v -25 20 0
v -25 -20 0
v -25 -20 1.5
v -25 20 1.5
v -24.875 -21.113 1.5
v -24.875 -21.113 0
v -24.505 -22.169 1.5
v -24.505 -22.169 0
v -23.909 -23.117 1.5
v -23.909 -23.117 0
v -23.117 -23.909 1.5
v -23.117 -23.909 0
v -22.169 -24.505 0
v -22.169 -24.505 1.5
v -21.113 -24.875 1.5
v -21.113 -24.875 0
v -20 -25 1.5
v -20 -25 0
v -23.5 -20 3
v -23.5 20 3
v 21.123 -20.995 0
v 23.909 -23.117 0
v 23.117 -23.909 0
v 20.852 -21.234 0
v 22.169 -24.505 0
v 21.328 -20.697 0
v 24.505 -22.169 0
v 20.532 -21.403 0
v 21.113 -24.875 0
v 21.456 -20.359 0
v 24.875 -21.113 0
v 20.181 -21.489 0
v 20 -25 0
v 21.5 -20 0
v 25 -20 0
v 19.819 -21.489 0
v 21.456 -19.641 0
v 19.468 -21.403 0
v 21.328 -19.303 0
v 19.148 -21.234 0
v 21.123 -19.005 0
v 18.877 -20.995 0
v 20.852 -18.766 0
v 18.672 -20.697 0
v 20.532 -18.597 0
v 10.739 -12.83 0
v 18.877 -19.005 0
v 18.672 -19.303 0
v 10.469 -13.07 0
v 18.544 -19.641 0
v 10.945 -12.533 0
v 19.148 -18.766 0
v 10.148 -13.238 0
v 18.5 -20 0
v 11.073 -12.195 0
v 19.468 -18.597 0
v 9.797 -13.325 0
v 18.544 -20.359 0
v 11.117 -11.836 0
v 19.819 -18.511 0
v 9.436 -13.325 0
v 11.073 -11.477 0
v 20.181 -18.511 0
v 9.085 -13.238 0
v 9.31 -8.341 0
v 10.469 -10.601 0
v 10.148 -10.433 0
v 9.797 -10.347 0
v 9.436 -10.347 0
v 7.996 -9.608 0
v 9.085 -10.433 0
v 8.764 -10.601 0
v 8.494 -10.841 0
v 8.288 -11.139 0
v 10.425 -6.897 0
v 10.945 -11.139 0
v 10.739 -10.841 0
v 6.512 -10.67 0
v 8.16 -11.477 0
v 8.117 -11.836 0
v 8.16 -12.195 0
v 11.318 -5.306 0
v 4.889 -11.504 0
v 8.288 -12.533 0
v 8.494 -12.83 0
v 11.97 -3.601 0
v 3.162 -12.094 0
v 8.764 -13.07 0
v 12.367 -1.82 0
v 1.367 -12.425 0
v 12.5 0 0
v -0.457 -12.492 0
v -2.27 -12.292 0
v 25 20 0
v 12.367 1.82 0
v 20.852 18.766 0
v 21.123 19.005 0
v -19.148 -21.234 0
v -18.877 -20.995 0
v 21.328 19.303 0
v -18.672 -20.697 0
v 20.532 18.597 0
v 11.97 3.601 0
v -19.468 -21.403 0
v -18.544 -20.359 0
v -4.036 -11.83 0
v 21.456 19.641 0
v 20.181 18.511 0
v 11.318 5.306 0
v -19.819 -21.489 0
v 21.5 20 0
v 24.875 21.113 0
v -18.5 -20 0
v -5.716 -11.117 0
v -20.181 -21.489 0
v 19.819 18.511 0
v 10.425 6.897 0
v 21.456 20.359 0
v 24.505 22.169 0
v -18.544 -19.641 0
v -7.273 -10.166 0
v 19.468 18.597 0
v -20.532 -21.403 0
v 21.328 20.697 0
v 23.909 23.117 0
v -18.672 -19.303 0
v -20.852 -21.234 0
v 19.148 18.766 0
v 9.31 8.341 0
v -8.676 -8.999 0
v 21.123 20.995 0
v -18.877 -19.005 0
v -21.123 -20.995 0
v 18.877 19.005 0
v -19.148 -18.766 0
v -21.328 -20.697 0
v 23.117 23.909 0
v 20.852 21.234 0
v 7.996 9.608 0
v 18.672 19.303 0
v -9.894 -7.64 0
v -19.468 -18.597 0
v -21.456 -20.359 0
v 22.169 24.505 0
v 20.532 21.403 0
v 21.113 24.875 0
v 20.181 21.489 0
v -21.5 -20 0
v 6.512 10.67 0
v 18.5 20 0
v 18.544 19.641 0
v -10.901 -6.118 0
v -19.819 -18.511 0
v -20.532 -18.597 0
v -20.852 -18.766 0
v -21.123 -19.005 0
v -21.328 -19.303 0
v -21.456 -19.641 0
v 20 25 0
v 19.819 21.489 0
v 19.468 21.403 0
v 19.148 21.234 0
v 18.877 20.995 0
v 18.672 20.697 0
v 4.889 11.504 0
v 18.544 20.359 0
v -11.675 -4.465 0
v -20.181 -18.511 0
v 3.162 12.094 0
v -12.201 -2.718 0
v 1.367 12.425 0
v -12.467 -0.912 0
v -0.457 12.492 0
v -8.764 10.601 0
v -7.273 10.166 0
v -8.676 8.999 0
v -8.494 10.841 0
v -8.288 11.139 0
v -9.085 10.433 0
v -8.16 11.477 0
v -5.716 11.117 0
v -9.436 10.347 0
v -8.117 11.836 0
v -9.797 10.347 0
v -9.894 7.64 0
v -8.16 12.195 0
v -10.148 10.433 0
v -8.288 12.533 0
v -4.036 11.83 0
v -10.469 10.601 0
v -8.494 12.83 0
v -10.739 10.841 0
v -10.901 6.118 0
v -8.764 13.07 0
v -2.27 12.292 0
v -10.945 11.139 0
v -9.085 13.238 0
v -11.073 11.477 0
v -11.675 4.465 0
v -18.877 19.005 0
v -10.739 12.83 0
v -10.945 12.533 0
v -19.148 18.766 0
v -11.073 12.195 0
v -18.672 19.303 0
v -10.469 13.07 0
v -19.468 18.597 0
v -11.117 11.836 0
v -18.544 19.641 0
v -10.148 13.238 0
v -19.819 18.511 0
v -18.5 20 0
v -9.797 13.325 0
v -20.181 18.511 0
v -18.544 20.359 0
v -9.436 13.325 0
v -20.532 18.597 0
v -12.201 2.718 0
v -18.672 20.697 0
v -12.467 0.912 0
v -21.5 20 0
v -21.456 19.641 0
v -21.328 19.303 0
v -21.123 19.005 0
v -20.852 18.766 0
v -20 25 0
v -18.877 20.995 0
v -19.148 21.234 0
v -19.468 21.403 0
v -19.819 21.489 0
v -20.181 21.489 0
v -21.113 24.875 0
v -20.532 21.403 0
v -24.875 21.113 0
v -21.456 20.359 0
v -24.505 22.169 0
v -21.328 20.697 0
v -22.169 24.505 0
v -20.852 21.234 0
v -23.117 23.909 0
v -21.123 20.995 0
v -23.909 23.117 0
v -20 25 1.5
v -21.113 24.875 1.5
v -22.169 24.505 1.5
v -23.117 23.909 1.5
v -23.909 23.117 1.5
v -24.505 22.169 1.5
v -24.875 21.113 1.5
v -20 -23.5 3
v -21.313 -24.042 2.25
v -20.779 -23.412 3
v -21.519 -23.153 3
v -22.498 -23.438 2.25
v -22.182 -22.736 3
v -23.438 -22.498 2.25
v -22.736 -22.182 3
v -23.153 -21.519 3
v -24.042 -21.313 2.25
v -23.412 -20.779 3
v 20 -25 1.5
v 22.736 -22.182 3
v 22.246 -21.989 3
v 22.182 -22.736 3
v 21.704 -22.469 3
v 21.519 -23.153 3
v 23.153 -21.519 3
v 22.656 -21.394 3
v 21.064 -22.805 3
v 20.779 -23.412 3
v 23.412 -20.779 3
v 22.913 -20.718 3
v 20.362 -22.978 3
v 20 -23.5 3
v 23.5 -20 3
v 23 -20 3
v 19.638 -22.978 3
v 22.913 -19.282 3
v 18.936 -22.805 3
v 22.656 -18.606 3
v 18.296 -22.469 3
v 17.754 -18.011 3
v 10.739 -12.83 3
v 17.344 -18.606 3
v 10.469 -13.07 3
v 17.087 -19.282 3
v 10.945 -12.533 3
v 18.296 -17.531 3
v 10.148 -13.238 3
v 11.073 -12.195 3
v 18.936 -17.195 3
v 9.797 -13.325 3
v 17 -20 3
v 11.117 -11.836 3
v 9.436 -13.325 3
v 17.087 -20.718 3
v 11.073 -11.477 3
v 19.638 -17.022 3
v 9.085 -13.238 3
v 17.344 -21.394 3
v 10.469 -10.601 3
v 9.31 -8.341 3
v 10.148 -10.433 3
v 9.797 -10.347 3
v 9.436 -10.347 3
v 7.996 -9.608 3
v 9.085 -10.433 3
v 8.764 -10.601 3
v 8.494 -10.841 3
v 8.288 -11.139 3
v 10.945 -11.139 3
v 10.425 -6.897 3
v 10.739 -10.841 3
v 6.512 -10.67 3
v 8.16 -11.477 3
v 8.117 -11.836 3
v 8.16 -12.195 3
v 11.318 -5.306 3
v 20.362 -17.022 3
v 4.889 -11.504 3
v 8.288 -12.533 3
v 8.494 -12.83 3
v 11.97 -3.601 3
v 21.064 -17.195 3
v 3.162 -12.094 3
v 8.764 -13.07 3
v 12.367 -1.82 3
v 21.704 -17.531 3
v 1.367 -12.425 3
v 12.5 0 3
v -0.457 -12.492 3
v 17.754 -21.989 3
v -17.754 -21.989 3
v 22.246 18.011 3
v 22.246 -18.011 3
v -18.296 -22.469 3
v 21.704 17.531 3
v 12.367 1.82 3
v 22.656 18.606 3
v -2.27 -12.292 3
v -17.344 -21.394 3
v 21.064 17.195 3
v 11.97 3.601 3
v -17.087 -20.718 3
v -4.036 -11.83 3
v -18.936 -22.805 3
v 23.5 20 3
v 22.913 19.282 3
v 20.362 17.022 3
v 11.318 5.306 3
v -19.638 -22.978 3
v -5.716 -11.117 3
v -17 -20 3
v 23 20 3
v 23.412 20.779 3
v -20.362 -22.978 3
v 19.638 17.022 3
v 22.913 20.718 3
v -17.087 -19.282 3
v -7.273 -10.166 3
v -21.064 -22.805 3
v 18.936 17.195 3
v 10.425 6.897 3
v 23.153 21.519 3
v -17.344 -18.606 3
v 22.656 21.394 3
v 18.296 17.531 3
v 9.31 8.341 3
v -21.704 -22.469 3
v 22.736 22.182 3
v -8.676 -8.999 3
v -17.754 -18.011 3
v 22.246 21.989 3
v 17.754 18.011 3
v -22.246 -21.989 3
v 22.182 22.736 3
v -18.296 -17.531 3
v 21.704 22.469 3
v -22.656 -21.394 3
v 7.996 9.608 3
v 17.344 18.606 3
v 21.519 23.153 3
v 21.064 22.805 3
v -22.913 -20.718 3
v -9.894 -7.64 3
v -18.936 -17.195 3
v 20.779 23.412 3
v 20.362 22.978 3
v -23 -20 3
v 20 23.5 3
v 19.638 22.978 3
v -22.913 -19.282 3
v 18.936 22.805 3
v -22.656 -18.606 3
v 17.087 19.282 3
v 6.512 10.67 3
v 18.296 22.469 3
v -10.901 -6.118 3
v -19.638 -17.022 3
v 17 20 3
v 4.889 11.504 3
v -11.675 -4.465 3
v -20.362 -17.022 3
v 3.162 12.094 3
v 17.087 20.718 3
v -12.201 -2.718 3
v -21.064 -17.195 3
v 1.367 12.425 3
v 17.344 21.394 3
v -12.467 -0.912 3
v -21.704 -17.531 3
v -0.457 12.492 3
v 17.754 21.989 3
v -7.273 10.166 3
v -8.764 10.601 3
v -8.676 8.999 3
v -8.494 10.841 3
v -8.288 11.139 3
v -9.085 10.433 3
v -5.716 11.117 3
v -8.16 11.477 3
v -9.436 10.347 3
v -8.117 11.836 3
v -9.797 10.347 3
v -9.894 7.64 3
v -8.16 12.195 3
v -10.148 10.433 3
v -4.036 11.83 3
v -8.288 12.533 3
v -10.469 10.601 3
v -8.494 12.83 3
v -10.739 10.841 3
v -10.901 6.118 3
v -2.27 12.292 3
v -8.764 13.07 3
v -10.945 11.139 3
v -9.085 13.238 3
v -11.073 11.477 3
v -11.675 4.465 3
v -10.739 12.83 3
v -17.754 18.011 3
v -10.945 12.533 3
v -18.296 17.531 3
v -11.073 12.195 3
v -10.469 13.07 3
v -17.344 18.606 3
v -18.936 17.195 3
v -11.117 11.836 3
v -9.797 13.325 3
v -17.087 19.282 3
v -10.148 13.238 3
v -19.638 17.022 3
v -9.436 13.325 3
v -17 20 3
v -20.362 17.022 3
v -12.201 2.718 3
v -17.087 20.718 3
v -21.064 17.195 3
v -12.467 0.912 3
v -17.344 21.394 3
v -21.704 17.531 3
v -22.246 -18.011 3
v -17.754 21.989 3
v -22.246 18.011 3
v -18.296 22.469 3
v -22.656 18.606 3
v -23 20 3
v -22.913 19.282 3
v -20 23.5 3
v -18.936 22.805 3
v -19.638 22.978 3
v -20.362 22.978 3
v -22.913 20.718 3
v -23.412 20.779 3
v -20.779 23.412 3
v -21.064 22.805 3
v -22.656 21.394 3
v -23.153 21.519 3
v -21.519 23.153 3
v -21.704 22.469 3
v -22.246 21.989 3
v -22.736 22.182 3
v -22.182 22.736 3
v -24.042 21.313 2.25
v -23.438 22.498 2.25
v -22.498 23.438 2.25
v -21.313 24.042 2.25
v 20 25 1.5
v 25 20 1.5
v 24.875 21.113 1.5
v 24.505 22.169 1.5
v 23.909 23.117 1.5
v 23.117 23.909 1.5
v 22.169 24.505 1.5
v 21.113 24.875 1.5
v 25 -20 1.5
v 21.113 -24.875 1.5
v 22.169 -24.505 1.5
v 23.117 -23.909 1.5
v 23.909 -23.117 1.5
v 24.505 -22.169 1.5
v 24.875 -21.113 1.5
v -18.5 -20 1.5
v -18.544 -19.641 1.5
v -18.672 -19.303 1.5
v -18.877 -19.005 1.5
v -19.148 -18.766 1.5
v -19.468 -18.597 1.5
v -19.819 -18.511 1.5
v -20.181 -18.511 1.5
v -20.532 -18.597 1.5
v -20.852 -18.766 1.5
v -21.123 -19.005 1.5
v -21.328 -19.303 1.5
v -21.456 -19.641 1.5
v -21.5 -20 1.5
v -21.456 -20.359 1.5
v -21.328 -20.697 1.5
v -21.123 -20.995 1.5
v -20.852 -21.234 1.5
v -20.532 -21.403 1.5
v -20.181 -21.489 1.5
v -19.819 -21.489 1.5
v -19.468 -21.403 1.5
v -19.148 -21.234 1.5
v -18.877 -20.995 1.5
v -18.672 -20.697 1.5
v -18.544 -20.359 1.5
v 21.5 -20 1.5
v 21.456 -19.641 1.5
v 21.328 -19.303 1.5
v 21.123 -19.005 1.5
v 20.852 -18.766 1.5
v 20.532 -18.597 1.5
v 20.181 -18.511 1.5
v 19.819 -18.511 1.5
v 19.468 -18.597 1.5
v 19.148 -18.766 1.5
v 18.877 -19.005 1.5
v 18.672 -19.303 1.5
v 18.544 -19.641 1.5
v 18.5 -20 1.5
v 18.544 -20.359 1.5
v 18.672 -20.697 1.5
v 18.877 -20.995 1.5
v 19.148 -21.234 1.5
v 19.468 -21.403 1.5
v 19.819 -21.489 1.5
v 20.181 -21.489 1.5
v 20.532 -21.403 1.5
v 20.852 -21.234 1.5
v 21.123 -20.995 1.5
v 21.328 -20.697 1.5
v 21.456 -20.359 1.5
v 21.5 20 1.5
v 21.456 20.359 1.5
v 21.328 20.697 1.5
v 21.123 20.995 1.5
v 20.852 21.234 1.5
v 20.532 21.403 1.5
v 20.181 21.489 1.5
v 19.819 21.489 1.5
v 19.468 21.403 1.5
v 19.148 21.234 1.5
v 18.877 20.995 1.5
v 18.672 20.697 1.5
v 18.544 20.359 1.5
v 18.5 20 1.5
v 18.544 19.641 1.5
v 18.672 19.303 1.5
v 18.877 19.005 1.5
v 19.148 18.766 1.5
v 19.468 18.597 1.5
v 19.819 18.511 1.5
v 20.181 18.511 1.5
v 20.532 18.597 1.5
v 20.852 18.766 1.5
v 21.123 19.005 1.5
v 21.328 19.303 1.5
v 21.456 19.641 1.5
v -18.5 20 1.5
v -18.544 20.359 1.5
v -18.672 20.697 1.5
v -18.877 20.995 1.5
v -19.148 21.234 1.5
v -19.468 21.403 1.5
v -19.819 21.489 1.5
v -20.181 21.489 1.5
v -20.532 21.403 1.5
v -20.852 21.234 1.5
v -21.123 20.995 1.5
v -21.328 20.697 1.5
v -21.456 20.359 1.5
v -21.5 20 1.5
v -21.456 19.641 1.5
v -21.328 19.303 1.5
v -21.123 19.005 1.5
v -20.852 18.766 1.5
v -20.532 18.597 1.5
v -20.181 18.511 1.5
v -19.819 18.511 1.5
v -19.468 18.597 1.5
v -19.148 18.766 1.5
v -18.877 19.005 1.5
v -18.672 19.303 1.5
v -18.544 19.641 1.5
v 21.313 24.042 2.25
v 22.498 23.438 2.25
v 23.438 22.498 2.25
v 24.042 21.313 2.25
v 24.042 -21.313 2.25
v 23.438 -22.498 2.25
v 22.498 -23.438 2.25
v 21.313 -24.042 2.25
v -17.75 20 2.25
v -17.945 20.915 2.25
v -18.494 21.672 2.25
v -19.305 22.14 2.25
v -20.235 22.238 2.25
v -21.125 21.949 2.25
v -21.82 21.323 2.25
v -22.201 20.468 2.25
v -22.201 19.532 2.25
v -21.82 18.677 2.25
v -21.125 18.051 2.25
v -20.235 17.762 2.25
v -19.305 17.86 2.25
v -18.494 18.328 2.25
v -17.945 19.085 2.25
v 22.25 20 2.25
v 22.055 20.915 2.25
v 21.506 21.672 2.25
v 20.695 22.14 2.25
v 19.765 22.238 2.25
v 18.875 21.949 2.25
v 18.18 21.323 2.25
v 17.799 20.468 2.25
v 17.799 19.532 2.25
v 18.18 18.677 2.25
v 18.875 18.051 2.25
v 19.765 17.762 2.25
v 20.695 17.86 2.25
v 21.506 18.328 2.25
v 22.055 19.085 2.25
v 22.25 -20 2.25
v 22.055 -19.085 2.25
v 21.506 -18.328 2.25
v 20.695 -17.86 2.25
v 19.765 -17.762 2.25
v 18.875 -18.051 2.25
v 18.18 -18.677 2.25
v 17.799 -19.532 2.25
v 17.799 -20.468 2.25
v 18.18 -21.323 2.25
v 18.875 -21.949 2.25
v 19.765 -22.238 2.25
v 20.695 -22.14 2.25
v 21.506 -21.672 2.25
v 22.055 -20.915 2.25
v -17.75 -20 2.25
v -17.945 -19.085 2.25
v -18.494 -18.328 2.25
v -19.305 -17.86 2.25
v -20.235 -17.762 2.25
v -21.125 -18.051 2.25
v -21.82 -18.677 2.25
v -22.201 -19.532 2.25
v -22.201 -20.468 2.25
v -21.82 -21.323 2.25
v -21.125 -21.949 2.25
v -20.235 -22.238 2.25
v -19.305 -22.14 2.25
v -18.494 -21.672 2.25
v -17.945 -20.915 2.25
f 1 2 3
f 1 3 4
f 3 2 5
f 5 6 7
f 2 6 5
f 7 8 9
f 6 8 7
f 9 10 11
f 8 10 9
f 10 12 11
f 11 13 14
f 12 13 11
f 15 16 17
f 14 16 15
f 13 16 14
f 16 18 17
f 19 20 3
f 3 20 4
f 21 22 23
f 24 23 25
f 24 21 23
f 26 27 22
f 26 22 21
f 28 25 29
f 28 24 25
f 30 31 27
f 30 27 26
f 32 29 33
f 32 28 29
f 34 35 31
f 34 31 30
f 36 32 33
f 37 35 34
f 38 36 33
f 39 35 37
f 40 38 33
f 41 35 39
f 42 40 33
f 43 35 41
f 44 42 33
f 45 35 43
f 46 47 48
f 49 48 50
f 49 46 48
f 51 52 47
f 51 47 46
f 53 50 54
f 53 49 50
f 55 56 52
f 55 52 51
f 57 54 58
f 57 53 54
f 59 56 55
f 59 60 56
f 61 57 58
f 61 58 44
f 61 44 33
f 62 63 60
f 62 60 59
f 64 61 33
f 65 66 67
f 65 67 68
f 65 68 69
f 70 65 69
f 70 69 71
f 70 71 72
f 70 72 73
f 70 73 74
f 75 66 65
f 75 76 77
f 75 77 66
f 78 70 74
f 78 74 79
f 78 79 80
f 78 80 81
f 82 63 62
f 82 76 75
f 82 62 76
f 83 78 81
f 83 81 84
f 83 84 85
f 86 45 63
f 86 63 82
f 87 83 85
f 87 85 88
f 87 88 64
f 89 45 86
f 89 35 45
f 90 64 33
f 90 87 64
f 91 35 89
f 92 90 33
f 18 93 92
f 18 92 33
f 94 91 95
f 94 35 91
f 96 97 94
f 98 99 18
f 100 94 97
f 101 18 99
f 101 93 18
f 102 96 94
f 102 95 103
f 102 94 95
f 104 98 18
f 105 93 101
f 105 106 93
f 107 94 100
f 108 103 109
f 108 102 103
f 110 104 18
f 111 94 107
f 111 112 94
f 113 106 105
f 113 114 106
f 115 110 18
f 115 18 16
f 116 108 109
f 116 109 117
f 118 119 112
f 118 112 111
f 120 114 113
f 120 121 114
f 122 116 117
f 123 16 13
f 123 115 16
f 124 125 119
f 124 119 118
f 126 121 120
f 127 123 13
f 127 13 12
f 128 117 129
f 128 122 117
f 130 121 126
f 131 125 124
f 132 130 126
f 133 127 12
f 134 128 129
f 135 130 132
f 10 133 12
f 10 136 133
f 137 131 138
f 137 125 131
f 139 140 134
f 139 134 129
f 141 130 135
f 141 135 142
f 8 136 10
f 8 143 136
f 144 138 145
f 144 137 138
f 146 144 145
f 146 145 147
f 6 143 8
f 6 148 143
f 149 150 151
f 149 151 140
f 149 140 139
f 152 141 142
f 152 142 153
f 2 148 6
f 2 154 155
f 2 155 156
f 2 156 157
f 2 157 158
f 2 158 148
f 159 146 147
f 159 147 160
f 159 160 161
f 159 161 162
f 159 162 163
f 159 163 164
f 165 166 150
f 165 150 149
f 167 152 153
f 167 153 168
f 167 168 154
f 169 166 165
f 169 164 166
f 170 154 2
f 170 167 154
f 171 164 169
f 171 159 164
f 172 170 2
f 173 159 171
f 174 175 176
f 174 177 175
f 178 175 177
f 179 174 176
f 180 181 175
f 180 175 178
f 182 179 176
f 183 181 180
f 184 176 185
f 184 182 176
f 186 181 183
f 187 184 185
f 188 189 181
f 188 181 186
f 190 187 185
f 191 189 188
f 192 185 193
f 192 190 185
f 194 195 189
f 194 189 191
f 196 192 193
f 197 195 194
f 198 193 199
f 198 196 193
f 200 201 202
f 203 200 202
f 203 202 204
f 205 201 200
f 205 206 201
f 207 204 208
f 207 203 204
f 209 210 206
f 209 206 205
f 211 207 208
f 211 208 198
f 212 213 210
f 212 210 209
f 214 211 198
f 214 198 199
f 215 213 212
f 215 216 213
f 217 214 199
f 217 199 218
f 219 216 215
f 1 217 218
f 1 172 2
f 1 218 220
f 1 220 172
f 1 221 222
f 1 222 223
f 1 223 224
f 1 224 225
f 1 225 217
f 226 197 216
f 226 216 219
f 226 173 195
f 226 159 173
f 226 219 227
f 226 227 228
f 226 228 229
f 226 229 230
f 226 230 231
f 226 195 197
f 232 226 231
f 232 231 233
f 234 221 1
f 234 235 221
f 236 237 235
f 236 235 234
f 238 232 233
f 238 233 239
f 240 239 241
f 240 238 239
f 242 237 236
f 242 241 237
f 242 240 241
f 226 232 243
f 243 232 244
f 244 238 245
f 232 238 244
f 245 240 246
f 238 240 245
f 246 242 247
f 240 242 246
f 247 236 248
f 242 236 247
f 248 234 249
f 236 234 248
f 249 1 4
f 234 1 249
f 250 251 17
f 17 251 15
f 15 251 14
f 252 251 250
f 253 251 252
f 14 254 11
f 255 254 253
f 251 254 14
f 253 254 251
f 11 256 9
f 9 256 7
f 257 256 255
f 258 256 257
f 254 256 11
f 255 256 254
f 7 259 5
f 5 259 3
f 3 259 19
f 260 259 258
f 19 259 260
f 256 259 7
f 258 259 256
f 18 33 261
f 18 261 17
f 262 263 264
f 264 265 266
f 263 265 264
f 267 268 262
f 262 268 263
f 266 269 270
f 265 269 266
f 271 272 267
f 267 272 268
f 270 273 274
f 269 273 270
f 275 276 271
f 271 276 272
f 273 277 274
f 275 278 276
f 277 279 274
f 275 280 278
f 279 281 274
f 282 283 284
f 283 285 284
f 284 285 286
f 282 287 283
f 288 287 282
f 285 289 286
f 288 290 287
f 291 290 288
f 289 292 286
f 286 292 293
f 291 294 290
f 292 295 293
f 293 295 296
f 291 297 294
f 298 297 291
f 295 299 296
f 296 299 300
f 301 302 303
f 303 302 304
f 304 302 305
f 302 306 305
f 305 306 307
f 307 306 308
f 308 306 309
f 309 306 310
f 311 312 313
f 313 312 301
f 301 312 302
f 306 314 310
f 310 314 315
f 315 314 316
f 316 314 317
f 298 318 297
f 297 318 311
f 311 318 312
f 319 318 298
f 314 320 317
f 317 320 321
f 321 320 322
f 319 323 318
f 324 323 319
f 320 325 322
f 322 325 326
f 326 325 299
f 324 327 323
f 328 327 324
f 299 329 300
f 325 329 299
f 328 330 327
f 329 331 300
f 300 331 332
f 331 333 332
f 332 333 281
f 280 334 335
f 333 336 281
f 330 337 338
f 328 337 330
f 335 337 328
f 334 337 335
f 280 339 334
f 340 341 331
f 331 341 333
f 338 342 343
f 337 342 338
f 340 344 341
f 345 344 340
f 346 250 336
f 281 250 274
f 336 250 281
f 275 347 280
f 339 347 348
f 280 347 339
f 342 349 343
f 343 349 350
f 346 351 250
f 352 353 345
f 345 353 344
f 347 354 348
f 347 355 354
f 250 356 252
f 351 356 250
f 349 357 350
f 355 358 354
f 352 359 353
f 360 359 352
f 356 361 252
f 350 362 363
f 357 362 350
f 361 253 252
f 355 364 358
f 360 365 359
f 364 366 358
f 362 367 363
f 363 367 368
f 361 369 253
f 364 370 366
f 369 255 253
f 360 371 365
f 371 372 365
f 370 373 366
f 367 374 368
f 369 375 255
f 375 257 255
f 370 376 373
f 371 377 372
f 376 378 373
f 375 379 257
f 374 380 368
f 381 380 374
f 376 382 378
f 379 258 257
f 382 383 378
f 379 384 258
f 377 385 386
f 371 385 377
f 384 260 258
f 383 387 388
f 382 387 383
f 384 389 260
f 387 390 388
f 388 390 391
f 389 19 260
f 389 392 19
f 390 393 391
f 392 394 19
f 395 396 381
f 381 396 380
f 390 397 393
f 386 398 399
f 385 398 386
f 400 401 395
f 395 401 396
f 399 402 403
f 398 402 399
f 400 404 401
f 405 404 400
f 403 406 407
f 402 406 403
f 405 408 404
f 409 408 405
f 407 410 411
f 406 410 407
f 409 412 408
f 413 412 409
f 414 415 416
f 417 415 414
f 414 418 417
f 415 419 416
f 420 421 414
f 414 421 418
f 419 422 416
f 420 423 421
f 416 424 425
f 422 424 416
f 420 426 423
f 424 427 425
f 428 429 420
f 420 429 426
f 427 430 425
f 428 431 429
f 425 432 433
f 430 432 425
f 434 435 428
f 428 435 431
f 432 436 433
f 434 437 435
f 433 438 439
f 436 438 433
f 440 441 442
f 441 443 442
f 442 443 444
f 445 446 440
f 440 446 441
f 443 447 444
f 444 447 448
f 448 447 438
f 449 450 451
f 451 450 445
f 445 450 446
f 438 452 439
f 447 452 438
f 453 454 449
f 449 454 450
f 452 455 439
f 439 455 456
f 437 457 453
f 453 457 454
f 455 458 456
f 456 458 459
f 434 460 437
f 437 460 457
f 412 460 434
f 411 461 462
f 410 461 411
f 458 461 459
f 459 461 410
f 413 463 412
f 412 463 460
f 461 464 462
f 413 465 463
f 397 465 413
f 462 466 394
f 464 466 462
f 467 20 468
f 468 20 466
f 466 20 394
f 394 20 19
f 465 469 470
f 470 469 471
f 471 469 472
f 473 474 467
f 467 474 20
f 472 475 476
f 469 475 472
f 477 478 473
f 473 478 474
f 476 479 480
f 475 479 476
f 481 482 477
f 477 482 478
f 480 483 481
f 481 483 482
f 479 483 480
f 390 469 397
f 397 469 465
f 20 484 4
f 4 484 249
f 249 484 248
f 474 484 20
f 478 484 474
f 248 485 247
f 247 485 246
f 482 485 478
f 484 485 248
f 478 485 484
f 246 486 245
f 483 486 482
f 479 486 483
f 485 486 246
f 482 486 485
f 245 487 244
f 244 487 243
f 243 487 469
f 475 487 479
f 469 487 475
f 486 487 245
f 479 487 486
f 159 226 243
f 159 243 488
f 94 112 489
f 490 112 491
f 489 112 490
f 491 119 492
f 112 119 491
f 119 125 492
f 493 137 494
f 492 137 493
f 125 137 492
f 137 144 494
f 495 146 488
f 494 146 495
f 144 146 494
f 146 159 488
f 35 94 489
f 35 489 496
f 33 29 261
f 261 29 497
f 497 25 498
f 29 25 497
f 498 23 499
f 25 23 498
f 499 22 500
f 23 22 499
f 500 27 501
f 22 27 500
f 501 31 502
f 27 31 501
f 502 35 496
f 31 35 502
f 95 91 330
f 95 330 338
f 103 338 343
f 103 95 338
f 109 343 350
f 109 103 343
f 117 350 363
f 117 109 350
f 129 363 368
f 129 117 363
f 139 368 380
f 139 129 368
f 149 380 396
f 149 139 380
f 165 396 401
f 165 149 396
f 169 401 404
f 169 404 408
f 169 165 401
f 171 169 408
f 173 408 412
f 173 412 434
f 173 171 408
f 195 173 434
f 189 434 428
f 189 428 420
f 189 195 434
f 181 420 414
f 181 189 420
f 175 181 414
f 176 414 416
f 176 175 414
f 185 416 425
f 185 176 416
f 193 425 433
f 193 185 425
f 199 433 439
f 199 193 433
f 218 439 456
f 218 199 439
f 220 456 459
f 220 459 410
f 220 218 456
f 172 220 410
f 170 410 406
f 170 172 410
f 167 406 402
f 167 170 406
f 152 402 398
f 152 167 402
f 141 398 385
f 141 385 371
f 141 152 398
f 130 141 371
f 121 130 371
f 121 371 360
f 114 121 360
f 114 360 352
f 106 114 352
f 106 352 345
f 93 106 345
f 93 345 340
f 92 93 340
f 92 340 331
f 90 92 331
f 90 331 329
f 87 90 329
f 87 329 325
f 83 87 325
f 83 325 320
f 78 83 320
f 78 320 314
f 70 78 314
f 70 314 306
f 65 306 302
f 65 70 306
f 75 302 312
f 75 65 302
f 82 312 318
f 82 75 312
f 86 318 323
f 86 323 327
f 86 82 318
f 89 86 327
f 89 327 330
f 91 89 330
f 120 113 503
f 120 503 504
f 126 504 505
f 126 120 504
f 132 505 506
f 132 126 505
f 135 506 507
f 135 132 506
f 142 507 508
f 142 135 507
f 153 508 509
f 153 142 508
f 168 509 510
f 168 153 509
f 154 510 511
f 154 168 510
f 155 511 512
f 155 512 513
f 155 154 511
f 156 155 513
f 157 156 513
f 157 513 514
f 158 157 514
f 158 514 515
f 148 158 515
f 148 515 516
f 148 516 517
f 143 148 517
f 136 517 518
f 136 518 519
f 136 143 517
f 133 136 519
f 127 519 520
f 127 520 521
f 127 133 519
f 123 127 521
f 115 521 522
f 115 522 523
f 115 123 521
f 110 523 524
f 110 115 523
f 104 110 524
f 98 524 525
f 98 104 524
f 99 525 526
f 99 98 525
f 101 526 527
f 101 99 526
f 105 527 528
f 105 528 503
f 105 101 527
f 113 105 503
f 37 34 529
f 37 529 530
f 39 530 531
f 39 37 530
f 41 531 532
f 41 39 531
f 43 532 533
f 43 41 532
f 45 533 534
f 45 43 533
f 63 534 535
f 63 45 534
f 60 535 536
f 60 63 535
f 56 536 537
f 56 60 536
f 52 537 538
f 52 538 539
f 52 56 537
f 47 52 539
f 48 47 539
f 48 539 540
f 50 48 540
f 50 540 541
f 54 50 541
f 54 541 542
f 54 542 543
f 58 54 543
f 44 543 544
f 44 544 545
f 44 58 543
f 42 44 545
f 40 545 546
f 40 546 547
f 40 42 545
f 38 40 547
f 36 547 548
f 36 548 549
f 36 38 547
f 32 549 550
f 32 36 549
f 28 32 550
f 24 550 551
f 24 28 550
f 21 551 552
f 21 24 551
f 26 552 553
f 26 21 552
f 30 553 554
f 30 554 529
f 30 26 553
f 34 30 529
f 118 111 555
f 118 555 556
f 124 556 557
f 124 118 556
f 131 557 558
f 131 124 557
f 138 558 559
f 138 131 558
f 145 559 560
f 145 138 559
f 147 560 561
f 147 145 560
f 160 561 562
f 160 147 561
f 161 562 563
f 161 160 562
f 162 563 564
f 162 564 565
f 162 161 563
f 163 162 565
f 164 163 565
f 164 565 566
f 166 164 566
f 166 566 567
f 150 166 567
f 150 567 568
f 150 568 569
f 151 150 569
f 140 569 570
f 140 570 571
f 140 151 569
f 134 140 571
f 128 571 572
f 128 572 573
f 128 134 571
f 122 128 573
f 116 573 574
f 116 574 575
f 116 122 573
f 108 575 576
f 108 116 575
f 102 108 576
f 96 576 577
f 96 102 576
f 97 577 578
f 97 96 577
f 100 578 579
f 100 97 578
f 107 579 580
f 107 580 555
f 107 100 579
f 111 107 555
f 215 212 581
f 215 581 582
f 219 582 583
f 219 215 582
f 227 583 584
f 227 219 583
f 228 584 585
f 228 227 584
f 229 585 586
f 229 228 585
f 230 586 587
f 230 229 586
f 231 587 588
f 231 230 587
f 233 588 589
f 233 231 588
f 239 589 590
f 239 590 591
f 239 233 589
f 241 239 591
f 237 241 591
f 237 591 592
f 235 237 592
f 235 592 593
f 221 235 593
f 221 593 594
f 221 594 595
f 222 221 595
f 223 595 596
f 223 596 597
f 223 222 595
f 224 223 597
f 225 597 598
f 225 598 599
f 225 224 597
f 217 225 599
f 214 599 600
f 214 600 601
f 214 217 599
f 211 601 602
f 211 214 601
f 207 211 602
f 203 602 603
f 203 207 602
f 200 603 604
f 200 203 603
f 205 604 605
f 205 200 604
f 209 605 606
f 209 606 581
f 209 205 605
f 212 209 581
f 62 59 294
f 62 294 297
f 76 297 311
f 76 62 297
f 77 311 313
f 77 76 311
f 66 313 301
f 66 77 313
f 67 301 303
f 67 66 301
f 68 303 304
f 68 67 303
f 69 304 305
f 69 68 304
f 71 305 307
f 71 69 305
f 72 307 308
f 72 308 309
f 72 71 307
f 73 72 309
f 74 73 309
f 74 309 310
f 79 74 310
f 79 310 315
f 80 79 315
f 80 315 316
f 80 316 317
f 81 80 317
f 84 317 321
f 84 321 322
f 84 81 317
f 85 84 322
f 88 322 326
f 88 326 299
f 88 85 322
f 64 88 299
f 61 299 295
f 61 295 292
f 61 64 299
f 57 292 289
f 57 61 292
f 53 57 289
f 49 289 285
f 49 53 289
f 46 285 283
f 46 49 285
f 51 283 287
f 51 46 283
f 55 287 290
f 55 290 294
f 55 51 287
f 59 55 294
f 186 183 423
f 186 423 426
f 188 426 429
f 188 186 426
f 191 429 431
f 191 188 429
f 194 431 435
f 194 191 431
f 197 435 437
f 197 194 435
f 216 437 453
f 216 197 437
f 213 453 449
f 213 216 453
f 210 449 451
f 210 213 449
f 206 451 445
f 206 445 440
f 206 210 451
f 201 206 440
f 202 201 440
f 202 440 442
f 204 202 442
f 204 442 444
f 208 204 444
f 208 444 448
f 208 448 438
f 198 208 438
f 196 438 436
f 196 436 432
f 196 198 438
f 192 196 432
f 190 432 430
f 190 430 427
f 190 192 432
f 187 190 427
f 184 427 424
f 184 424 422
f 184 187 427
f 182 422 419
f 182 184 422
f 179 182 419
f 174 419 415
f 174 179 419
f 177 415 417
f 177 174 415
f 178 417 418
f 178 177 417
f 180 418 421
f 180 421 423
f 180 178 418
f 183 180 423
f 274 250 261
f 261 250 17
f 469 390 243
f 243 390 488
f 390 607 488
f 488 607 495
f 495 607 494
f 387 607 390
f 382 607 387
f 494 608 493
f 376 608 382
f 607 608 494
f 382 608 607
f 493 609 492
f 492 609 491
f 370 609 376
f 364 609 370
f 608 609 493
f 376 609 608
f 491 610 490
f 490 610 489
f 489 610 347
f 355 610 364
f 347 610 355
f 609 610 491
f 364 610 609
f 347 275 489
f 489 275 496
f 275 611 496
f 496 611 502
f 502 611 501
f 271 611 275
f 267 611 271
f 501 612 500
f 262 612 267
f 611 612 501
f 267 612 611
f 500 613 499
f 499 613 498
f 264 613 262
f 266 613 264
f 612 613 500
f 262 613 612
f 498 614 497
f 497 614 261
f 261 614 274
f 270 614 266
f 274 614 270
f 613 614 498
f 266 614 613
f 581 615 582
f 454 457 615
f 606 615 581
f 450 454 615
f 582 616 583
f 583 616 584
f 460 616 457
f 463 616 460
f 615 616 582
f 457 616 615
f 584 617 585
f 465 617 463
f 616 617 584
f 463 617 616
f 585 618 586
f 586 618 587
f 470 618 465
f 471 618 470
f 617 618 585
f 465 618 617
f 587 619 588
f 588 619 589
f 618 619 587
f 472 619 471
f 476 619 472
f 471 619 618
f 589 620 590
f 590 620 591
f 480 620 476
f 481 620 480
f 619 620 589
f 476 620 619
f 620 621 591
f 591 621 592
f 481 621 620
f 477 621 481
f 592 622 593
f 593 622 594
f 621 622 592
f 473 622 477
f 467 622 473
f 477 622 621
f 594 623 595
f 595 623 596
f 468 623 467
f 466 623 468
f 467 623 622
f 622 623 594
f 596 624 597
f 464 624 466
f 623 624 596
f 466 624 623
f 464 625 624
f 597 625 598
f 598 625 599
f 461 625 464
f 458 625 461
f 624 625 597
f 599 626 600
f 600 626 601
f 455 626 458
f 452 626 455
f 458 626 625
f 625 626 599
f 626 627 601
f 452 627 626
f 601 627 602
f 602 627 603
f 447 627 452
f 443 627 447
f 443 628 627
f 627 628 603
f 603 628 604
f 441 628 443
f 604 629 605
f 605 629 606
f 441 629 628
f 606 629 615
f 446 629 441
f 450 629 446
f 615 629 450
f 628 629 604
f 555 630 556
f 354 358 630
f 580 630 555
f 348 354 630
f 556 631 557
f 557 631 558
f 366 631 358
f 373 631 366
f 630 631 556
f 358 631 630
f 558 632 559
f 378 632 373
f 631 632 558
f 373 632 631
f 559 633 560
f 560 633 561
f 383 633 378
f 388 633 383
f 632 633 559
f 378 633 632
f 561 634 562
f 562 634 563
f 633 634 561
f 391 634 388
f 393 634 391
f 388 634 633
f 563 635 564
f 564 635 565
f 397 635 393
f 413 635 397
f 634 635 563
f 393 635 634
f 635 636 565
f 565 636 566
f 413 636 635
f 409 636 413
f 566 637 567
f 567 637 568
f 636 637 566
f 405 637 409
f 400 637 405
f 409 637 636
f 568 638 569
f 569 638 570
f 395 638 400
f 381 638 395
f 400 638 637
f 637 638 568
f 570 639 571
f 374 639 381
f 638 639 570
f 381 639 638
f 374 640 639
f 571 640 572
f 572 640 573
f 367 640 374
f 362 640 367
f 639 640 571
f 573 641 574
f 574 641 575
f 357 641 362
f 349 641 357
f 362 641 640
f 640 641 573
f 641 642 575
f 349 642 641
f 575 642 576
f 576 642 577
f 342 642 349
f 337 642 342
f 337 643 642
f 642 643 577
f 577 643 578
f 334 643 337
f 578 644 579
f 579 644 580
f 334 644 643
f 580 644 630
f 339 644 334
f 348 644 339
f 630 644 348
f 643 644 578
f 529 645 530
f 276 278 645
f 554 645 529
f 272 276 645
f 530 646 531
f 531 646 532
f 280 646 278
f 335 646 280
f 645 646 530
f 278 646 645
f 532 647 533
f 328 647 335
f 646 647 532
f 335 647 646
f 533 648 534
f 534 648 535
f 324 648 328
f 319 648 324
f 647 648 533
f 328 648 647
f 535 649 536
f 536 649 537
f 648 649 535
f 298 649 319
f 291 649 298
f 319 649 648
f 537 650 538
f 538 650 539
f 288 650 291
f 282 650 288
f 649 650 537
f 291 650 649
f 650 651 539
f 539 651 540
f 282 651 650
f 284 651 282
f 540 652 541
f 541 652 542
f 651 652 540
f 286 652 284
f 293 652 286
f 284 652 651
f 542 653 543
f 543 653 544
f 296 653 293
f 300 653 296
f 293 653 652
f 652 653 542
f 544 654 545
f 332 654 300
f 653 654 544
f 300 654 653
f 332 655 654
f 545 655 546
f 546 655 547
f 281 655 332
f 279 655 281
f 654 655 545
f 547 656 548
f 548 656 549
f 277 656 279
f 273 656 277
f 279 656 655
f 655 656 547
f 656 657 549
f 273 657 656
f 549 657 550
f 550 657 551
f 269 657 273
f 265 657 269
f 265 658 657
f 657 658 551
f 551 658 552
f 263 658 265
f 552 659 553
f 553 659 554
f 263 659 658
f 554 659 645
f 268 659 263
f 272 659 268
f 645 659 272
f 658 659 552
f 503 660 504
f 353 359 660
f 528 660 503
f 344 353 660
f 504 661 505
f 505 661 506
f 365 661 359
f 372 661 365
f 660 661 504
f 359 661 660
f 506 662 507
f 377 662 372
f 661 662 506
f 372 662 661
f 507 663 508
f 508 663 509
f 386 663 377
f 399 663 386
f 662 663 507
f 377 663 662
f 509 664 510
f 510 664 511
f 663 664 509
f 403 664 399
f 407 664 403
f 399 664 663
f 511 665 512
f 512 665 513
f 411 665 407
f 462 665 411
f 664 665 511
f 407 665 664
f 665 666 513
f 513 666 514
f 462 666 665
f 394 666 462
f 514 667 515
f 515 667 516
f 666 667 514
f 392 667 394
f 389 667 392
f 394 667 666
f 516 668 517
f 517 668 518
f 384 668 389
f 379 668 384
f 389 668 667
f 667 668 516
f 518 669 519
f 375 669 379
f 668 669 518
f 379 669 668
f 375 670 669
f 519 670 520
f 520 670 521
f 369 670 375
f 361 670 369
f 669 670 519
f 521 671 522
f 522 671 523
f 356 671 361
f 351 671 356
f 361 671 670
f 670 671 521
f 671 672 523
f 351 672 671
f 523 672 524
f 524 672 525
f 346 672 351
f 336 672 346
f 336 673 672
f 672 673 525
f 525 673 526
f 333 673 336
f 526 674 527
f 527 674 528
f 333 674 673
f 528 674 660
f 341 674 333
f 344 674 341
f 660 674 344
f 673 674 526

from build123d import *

# Parameters (mm, degrees)
SKETCH_R     = 1.5
SKETCH_R_2   = 12.5
PAD_DEPTH    = 3
CHAMFER_SIZE = 1.5


with BuildPart() as part:
    # Sketch → Pad (new body)
    with BuildSketch(Plane.XY):
        with BuildLine():
            Line((-20, 25), (20, 25))
            ThreePointArc((25, 20), (23.535534, 23.535534), (20, 25))
            Line((25, 20), (25, -20))
            ThreePointArc((20, -25), (23.535534, -23.535534), (25, -20))
            Line((20, -25), (-20, -25))
            ThreePointArc((-25, -20), (-23.535534, -23.535534), (-20, -25))
            Line((-25, -20), (-25, 20))
            ThreePointArc((-20, 25), (-23.535534, 23.535534), (-25, 20))
        make_face()
        with Locations((-9.616538, 11.835739)):
            Circle(SKETCH_R, mode=Mode.SUBTRACT)
        with Locations((9.616538, -11.835739)):
            Circle(SKETCH_R, mode=Mode.SUBTRACT)
        with Locations((-20, 20)):
            Circle(SKETCH_R, mode=Mode.SUBTRACT)
        with Locations((20, 20)):
            Circle(SKETCH_R, mode=Mode.SUBTRACT)
        with Locations((20, -20)):
            Circle(SKETCH_R, mode=Mode.SUBTRACT)
        with Locations((-20, -20)):
            Circle(SKETCH_R, mode=Mode.SUBTRACT)
        Circle(SKETCH_R_2, mode=Mode.SUBTRACT)
    extrude(amount=PAD_DEPTH)

    # Chamfer
    chamfer_edges = [part.edges().sort_by_distance(p)[0] for p in [
        (0, 25, 3),
        (-21.5, 20, 3),
        (18.5, 20, 3),
        (18.5, -20, 3),
        (-21.5, -20, 3),
    ]]
    chamfer(chamfer_edges, length=CHAMFER_SIZE)


solid = part.part
